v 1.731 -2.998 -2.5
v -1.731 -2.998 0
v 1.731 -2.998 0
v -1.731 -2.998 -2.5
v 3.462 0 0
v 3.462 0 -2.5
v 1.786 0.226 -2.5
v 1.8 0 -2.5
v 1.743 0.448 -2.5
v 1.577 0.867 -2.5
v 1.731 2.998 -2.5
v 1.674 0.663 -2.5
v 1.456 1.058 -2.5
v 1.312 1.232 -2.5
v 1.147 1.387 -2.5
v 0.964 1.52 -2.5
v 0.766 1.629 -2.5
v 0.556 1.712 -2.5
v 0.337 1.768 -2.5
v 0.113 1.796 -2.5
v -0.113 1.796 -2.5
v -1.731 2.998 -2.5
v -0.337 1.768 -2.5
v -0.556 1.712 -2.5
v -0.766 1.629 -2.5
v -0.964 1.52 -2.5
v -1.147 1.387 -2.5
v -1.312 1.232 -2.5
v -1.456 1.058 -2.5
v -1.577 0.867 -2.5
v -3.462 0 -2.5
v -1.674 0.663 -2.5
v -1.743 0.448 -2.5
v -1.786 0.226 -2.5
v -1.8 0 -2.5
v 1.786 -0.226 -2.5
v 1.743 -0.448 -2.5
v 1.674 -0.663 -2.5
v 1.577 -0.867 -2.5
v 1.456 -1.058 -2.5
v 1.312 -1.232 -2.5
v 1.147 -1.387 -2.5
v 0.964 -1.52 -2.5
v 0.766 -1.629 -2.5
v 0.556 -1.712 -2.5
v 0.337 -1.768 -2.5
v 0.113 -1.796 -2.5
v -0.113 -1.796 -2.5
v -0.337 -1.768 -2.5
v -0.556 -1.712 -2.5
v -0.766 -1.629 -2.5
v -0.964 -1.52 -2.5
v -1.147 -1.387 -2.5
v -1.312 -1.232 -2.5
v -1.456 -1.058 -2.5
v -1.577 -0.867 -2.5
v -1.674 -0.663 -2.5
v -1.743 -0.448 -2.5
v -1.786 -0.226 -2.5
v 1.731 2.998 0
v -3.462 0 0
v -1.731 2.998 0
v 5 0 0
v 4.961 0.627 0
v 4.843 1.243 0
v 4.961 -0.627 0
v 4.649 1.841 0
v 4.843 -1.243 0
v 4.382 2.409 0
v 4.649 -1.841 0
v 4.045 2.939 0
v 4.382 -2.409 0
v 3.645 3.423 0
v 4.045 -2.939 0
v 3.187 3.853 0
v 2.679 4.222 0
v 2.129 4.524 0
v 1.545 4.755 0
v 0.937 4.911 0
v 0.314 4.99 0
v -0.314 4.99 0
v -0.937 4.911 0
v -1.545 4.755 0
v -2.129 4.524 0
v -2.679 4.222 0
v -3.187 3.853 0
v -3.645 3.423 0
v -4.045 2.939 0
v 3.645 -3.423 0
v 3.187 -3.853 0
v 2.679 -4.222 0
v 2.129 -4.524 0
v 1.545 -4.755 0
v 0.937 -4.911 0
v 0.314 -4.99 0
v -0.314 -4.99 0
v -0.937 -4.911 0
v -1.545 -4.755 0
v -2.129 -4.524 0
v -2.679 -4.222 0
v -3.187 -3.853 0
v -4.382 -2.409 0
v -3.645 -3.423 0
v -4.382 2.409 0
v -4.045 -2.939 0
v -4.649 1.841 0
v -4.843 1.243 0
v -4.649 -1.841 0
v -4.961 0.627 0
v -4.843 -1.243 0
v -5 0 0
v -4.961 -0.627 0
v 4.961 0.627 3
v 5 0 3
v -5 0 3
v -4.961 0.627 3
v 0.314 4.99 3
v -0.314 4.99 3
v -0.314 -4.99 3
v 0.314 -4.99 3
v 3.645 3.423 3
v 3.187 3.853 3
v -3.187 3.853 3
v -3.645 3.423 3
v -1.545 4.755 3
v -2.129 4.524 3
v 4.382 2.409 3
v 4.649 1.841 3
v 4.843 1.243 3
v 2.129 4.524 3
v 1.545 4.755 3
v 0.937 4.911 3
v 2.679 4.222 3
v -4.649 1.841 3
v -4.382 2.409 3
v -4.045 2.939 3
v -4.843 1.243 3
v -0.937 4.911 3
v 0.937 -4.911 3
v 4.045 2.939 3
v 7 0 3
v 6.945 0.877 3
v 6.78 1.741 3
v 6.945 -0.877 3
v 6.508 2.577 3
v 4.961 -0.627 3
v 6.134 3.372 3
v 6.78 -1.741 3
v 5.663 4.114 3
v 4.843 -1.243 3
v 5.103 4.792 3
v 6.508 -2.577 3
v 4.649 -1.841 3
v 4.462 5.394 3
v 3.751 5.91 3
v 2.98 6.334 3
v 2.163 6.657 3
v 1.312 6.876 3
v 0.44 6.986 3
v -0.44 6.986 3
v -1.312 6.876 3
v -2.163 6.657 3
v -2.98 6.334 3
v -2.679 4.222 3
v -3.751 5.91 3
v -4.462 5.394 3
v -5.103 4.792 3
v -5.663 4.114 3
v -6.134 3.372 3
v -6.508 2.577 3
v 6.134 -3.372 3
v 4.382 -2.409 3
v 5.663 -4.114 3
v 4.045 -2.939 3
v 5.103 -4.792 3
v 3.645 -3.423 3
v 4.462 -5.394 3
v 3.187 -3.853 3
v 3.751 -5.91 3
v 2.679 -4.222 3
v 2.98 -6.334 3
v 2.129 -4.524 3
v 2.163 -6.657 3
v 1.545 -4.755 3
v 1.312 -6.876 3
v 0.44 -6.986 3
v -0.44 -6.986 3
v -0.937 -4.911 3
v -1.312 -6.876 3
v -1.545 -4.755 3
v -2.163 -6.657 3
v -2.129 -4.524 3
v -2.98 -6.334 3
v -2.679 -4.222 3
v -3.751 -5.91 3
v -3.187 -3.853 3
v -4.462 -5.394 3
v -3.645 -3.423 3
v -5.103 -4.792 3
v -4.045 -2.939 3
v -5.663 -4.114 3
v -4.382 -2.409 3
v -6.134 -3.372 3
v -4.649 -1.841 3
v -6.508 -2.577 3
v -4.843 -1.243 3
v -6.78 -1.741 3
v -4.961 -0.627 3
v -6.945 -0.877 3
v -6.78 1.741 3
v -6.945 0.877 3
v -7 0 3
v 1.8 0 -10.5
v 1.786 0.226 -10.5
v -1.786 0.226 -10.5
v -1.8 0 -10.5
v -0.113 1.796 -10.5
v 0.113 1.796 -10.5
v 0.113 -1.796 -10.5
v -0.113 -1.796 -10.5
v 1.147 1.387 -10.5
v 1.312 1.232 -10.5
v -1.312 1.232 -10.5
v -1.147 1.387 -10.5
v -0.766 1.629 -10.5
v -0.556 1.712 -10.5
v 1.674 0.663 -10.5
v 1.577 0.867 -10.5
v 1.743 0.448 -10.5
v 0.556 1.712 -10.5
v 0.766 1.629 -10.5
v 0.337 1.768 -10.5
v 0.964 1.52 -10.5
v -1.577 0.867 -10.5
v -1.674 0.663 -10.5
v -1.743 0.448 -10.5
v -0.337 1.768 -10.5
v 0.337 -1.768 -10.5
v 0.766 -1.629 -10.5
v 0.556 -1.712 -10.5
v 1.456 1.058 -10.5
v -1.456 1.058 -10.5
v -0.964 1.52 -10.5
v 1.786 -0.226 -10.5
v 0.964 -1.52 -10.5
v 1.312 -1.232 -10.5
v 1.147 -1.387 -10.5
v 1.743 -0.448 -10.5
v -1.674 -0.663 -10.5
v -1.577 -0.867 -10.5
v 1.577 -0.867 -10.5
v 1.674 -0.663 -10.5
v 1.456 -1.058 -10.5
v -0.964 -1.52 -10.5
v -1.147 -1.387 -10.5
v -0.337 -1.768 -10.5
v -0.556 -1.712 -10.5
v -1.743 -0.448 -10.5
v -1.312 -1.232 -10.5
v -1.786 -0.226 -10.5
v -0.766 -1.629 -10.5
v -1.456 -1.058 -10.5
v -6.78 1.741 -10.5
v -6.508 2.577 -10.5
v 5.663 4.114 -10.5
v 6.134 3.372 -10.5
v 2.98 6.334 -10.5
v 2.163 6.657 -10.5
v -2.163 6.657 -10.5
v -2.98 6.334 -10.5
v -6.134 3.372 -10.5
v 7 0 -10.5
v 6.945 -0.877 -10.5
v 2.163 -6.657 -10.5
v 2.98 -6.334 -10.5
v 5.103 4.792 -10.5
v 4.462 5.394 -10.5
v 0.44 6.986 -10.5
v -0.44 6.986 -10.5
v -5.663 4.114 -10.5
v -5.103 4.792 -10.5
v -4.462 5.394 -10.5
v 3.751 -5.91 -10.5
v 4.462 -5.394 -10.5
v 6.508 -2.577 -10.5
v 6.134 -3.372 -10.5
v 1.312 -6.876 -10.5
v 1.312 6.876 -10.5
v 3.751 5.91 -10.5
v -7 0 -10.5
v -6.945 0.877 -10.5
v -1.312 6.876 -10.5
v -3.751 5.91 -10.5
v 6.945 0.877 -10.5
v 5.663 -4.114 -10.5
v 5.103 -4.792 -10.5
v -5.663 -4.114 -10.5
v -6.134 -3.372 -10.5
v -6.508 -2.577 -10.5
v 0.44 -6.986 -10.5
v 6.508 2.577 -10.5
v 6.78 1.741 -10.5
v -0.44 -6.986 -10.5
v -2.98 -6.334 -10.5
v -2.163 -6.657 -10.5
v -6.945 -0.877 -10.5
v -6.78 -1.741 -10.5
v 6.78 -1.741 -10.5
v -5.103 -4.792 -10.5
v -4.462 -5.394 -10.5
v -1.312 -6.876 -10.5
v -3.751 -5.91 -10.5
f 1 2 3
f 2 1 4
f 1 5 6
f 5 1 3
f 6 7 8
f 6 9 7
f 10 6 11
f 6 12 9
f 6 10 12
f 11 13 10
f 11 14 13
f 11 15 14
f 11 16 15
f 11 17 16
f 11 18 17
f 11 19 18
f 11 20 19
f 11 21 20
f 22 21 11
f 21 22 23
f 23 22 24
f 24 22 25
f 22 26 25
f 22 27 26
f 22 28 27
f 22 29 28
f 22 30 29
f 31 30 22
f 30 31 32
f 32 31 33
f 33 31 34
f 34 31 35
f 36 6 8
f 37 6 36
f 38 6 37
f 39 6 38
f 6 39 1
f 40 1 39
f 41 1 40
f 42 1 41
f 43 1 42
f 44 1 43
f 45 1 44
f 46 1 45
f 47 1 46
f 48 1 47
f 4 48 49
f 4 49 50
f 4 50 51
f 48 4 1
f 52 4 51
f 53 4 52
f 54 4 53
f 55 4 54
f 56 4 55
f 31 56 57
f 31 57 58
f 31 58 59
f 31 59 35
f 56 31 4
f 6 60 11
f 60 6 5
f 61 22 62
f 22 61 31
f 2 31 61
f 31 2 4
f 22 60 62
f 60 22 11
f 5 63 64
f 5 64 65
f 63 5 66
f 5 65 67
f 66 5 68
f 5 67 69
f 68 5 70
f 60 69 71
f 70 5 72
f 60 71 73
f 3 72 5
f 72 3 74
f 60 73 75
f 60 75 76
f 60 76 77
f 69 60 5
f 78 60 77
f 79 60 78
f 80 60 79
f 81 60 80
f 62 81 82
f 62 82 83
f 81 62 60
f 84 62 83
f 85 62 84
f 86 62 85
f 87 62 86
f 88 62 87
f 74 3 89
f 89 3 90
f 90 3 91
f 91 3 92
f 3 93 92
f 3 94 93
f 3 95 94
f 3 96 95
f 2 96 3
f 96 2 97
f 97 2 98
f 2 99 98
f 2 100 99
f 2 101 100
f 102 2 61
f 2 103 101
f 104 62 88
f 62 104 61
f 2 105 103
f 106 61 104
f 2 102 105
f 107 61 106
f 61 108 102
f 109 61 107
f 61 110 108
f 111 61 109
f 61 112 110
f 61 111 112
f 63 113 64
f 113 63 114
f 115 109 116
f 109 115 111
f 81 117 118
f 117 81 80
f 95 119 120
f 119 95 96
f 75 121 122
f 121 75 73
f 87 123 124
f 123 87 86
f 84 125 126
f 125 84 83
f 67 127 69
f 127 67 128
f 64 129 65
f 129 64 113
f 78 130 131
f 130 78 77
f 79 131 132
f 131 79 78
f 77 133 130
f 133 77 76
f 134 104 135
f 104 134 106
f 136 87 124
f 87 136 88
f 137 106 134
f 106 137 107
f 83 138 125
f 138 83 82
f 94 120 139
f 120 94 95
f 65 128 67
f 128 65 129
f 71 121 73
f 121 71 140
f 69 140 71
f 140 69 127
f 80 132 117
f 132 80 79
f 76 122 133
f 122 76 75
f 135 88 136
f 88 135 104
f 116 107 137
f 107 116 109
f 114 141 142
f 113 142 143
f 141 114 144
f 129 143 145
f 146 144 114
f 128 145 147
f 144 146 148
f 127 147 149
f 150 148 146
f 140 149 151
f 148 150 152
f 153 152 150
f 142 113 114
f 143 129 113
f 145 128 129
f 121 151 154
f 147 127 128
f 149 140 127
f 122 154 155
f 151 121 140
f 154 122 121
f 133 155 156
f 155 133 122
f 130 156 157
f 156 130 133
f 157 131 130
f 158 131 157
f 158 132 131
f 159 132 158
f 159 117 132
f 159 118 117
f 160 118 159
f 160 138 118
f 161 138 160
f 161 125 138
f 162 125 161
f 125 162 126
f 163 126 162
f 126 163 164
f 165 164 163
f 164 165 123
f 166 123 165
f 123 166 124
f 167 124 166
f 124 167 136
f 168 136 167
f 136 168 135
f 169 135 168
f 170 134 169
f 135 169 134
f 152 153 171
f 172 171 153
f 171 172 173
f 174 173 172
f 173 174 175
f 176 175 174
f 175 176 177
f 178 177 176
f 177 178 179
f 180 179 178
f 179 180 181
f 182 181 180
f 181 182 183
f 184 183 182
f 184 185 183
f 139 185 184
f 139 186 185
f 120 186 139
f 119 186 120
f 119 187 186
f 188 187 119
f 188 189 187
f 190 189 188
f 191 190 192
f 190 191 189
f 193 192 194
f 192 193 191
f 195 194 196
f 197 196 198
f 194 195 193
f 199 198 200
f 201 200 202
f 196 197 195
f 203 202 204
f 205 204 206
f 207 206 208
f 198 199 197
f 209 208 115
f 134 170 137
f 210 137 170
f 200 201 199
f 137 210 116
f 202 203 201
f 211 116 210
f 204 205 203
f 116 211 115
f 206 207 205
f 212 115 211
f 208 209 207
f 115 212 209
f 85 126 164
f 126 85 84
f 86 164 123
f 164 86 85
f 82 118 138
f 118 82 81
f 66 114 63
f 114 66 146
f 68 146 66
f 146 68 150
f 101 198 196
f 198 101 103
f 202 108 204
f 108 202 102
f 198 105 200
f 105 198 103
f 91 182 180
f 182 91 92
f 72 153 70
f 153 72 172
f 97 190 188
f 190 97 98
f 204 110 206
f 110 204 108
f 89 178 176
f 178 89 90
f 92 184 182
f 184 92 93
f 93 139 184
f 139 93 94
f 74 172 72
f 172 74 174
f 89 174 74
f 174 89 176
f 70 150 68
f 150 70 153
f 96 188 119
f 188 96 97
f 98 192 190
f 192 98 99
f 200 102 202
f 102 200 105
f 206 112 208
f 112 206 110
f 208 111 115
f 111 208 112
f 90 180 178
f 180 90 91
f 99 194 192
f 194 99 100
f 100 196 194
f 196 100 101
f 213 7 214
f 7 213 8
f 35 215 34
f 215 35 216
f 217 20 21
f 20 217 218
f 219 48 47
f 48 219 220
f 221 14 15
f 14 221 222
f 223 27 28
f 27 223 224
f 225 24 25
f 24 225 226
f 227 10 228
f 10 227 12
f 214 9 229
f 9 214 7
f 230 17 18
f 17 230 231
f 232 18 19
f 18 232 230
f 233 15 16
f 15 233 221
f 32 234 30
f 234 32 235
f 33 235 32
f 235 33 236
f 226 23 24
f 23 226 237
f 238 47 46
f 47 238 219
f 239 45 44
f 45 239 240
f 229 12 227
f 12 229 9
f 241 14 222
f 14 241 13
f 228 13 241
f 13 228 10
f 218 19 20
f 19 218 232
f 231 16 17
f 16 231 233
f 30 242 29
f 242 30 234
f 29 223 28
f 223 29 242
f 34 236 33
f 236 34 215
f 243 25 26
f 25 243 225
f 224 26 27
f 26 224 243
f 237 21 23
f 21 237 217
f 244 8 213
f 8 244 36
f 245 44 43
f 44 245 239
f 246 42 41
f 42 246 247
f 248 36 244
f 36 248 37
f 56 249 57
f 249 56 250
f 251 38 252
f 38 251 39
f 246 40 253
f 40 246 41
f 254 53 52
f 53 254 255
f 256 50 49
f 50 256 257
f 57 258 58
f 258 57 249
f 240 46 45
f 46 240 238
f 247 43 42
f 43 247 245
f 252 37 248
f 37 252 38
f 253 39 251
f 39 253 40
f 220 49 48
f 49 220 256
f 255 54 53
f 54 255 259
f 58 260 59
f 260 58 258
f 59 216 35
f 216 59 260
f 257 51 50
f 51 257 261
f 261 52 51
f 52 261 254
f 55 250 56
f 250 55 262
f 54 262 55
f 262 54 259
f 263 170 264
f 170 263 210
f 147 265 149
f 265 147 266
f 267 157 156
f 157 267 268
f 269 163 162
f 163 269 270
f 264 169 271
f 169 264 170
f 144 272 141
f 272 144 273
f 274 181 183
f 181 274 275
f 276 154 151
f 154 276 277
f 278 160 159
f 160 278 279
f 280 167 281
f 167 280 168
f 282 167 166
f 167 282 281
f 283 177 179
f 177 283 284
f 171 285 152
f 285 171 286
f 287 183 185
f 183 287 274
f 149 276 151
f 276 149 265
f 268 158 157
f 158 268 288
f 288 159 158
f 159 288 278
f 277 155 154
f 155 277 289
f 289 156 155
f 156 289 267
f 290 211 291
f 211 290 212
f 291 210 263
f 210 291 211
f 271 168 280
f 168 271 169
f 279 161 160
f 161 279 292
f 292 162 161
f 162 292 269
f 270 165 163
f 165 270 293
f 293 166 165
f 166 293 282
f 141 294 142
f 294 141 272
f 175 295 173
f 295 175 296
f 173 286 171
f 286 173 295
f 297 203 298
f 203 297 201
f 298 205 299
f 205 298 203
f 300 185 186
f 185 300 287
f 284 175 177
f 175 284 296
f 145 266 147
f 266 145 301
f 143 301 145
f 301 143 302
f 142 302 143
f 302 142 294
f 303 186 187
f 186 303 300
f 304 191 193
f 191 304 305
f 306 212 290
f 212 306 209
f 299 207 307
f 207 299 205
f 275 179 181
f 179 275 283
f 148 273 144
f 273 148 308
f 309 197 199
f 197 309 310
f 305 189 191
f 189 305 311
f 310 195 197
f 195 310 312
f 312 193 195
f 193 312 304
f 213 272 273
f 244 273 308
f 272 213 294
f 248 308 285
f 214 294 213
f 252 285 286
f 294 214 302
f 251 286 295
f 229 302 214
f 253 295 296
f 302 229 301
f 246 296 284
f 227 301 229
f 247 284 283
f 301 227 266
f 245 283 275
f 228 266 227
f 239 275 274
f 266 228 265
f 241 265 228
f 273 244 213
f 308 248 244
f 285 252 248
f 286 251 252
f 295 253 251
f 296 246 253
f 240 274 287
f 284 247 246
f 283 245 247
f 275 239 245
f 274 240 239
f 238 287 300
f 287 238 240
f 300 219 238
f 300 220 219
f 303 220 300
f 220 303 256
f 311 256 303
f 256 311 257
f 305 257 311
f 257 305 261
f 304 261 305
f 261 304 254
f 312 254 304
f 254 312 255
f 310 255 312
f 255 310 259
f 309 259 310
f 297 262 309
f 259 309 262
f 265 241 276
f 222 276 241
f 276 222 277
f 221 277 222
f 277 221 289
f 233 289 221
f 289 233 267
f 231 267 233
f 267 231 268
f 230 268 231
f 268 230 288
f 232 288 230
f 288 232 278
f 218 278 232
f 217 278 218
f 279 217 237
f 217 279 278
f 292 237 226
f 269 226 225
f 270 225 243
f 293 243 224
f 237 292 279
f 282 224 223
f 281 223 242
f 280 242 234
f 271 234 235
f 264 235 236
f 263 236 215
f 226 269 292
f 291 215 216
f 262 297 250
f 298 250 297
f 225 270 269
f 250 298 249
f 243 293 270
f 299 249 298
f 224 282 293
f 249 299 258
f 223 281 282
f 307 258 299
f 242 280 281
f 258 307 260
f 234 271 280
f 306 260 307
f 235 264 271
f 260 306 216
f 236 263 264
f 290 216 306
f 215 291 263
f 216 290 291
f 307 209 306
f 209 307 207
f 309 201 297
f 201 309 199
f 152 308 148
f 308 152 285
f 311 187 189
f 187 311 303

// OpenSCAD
$fn = 50;


difference() {
	union() {
		translate(v = [0, 0, -10.5000000000]) {
			cylinder(h = 13.5000000000, r = 7.0000000000);
		}
	}
	union() {
		translate(v = [0, 0, 0]) {
			rotate(a = [0, 0, 0]) {
				difference() {
					union() {
						translate(v = [0, 0, -2.5000000000]) {
							linear_extrude(height = 2.5000000000) {
								polygon(points = [[3.4620000000, 0.0000000000], [1.7310000000, 2.9981799479], [-1.7310000000, 2.9981799479], [-3.4620000000, 0.0000000000], [-1.7310000000, -2.9981799479], [1.7310000000, -2.9981799479]]);
							}
						}
					}
					union();
				}
			}
		}
		#cylinder(h = 3, r = 5.0000000000);
		#translate(v = [0, 0, -100.0000000000]) {
			cylinder(h = 200, r = 1.8000000000);
		}
	}
}
